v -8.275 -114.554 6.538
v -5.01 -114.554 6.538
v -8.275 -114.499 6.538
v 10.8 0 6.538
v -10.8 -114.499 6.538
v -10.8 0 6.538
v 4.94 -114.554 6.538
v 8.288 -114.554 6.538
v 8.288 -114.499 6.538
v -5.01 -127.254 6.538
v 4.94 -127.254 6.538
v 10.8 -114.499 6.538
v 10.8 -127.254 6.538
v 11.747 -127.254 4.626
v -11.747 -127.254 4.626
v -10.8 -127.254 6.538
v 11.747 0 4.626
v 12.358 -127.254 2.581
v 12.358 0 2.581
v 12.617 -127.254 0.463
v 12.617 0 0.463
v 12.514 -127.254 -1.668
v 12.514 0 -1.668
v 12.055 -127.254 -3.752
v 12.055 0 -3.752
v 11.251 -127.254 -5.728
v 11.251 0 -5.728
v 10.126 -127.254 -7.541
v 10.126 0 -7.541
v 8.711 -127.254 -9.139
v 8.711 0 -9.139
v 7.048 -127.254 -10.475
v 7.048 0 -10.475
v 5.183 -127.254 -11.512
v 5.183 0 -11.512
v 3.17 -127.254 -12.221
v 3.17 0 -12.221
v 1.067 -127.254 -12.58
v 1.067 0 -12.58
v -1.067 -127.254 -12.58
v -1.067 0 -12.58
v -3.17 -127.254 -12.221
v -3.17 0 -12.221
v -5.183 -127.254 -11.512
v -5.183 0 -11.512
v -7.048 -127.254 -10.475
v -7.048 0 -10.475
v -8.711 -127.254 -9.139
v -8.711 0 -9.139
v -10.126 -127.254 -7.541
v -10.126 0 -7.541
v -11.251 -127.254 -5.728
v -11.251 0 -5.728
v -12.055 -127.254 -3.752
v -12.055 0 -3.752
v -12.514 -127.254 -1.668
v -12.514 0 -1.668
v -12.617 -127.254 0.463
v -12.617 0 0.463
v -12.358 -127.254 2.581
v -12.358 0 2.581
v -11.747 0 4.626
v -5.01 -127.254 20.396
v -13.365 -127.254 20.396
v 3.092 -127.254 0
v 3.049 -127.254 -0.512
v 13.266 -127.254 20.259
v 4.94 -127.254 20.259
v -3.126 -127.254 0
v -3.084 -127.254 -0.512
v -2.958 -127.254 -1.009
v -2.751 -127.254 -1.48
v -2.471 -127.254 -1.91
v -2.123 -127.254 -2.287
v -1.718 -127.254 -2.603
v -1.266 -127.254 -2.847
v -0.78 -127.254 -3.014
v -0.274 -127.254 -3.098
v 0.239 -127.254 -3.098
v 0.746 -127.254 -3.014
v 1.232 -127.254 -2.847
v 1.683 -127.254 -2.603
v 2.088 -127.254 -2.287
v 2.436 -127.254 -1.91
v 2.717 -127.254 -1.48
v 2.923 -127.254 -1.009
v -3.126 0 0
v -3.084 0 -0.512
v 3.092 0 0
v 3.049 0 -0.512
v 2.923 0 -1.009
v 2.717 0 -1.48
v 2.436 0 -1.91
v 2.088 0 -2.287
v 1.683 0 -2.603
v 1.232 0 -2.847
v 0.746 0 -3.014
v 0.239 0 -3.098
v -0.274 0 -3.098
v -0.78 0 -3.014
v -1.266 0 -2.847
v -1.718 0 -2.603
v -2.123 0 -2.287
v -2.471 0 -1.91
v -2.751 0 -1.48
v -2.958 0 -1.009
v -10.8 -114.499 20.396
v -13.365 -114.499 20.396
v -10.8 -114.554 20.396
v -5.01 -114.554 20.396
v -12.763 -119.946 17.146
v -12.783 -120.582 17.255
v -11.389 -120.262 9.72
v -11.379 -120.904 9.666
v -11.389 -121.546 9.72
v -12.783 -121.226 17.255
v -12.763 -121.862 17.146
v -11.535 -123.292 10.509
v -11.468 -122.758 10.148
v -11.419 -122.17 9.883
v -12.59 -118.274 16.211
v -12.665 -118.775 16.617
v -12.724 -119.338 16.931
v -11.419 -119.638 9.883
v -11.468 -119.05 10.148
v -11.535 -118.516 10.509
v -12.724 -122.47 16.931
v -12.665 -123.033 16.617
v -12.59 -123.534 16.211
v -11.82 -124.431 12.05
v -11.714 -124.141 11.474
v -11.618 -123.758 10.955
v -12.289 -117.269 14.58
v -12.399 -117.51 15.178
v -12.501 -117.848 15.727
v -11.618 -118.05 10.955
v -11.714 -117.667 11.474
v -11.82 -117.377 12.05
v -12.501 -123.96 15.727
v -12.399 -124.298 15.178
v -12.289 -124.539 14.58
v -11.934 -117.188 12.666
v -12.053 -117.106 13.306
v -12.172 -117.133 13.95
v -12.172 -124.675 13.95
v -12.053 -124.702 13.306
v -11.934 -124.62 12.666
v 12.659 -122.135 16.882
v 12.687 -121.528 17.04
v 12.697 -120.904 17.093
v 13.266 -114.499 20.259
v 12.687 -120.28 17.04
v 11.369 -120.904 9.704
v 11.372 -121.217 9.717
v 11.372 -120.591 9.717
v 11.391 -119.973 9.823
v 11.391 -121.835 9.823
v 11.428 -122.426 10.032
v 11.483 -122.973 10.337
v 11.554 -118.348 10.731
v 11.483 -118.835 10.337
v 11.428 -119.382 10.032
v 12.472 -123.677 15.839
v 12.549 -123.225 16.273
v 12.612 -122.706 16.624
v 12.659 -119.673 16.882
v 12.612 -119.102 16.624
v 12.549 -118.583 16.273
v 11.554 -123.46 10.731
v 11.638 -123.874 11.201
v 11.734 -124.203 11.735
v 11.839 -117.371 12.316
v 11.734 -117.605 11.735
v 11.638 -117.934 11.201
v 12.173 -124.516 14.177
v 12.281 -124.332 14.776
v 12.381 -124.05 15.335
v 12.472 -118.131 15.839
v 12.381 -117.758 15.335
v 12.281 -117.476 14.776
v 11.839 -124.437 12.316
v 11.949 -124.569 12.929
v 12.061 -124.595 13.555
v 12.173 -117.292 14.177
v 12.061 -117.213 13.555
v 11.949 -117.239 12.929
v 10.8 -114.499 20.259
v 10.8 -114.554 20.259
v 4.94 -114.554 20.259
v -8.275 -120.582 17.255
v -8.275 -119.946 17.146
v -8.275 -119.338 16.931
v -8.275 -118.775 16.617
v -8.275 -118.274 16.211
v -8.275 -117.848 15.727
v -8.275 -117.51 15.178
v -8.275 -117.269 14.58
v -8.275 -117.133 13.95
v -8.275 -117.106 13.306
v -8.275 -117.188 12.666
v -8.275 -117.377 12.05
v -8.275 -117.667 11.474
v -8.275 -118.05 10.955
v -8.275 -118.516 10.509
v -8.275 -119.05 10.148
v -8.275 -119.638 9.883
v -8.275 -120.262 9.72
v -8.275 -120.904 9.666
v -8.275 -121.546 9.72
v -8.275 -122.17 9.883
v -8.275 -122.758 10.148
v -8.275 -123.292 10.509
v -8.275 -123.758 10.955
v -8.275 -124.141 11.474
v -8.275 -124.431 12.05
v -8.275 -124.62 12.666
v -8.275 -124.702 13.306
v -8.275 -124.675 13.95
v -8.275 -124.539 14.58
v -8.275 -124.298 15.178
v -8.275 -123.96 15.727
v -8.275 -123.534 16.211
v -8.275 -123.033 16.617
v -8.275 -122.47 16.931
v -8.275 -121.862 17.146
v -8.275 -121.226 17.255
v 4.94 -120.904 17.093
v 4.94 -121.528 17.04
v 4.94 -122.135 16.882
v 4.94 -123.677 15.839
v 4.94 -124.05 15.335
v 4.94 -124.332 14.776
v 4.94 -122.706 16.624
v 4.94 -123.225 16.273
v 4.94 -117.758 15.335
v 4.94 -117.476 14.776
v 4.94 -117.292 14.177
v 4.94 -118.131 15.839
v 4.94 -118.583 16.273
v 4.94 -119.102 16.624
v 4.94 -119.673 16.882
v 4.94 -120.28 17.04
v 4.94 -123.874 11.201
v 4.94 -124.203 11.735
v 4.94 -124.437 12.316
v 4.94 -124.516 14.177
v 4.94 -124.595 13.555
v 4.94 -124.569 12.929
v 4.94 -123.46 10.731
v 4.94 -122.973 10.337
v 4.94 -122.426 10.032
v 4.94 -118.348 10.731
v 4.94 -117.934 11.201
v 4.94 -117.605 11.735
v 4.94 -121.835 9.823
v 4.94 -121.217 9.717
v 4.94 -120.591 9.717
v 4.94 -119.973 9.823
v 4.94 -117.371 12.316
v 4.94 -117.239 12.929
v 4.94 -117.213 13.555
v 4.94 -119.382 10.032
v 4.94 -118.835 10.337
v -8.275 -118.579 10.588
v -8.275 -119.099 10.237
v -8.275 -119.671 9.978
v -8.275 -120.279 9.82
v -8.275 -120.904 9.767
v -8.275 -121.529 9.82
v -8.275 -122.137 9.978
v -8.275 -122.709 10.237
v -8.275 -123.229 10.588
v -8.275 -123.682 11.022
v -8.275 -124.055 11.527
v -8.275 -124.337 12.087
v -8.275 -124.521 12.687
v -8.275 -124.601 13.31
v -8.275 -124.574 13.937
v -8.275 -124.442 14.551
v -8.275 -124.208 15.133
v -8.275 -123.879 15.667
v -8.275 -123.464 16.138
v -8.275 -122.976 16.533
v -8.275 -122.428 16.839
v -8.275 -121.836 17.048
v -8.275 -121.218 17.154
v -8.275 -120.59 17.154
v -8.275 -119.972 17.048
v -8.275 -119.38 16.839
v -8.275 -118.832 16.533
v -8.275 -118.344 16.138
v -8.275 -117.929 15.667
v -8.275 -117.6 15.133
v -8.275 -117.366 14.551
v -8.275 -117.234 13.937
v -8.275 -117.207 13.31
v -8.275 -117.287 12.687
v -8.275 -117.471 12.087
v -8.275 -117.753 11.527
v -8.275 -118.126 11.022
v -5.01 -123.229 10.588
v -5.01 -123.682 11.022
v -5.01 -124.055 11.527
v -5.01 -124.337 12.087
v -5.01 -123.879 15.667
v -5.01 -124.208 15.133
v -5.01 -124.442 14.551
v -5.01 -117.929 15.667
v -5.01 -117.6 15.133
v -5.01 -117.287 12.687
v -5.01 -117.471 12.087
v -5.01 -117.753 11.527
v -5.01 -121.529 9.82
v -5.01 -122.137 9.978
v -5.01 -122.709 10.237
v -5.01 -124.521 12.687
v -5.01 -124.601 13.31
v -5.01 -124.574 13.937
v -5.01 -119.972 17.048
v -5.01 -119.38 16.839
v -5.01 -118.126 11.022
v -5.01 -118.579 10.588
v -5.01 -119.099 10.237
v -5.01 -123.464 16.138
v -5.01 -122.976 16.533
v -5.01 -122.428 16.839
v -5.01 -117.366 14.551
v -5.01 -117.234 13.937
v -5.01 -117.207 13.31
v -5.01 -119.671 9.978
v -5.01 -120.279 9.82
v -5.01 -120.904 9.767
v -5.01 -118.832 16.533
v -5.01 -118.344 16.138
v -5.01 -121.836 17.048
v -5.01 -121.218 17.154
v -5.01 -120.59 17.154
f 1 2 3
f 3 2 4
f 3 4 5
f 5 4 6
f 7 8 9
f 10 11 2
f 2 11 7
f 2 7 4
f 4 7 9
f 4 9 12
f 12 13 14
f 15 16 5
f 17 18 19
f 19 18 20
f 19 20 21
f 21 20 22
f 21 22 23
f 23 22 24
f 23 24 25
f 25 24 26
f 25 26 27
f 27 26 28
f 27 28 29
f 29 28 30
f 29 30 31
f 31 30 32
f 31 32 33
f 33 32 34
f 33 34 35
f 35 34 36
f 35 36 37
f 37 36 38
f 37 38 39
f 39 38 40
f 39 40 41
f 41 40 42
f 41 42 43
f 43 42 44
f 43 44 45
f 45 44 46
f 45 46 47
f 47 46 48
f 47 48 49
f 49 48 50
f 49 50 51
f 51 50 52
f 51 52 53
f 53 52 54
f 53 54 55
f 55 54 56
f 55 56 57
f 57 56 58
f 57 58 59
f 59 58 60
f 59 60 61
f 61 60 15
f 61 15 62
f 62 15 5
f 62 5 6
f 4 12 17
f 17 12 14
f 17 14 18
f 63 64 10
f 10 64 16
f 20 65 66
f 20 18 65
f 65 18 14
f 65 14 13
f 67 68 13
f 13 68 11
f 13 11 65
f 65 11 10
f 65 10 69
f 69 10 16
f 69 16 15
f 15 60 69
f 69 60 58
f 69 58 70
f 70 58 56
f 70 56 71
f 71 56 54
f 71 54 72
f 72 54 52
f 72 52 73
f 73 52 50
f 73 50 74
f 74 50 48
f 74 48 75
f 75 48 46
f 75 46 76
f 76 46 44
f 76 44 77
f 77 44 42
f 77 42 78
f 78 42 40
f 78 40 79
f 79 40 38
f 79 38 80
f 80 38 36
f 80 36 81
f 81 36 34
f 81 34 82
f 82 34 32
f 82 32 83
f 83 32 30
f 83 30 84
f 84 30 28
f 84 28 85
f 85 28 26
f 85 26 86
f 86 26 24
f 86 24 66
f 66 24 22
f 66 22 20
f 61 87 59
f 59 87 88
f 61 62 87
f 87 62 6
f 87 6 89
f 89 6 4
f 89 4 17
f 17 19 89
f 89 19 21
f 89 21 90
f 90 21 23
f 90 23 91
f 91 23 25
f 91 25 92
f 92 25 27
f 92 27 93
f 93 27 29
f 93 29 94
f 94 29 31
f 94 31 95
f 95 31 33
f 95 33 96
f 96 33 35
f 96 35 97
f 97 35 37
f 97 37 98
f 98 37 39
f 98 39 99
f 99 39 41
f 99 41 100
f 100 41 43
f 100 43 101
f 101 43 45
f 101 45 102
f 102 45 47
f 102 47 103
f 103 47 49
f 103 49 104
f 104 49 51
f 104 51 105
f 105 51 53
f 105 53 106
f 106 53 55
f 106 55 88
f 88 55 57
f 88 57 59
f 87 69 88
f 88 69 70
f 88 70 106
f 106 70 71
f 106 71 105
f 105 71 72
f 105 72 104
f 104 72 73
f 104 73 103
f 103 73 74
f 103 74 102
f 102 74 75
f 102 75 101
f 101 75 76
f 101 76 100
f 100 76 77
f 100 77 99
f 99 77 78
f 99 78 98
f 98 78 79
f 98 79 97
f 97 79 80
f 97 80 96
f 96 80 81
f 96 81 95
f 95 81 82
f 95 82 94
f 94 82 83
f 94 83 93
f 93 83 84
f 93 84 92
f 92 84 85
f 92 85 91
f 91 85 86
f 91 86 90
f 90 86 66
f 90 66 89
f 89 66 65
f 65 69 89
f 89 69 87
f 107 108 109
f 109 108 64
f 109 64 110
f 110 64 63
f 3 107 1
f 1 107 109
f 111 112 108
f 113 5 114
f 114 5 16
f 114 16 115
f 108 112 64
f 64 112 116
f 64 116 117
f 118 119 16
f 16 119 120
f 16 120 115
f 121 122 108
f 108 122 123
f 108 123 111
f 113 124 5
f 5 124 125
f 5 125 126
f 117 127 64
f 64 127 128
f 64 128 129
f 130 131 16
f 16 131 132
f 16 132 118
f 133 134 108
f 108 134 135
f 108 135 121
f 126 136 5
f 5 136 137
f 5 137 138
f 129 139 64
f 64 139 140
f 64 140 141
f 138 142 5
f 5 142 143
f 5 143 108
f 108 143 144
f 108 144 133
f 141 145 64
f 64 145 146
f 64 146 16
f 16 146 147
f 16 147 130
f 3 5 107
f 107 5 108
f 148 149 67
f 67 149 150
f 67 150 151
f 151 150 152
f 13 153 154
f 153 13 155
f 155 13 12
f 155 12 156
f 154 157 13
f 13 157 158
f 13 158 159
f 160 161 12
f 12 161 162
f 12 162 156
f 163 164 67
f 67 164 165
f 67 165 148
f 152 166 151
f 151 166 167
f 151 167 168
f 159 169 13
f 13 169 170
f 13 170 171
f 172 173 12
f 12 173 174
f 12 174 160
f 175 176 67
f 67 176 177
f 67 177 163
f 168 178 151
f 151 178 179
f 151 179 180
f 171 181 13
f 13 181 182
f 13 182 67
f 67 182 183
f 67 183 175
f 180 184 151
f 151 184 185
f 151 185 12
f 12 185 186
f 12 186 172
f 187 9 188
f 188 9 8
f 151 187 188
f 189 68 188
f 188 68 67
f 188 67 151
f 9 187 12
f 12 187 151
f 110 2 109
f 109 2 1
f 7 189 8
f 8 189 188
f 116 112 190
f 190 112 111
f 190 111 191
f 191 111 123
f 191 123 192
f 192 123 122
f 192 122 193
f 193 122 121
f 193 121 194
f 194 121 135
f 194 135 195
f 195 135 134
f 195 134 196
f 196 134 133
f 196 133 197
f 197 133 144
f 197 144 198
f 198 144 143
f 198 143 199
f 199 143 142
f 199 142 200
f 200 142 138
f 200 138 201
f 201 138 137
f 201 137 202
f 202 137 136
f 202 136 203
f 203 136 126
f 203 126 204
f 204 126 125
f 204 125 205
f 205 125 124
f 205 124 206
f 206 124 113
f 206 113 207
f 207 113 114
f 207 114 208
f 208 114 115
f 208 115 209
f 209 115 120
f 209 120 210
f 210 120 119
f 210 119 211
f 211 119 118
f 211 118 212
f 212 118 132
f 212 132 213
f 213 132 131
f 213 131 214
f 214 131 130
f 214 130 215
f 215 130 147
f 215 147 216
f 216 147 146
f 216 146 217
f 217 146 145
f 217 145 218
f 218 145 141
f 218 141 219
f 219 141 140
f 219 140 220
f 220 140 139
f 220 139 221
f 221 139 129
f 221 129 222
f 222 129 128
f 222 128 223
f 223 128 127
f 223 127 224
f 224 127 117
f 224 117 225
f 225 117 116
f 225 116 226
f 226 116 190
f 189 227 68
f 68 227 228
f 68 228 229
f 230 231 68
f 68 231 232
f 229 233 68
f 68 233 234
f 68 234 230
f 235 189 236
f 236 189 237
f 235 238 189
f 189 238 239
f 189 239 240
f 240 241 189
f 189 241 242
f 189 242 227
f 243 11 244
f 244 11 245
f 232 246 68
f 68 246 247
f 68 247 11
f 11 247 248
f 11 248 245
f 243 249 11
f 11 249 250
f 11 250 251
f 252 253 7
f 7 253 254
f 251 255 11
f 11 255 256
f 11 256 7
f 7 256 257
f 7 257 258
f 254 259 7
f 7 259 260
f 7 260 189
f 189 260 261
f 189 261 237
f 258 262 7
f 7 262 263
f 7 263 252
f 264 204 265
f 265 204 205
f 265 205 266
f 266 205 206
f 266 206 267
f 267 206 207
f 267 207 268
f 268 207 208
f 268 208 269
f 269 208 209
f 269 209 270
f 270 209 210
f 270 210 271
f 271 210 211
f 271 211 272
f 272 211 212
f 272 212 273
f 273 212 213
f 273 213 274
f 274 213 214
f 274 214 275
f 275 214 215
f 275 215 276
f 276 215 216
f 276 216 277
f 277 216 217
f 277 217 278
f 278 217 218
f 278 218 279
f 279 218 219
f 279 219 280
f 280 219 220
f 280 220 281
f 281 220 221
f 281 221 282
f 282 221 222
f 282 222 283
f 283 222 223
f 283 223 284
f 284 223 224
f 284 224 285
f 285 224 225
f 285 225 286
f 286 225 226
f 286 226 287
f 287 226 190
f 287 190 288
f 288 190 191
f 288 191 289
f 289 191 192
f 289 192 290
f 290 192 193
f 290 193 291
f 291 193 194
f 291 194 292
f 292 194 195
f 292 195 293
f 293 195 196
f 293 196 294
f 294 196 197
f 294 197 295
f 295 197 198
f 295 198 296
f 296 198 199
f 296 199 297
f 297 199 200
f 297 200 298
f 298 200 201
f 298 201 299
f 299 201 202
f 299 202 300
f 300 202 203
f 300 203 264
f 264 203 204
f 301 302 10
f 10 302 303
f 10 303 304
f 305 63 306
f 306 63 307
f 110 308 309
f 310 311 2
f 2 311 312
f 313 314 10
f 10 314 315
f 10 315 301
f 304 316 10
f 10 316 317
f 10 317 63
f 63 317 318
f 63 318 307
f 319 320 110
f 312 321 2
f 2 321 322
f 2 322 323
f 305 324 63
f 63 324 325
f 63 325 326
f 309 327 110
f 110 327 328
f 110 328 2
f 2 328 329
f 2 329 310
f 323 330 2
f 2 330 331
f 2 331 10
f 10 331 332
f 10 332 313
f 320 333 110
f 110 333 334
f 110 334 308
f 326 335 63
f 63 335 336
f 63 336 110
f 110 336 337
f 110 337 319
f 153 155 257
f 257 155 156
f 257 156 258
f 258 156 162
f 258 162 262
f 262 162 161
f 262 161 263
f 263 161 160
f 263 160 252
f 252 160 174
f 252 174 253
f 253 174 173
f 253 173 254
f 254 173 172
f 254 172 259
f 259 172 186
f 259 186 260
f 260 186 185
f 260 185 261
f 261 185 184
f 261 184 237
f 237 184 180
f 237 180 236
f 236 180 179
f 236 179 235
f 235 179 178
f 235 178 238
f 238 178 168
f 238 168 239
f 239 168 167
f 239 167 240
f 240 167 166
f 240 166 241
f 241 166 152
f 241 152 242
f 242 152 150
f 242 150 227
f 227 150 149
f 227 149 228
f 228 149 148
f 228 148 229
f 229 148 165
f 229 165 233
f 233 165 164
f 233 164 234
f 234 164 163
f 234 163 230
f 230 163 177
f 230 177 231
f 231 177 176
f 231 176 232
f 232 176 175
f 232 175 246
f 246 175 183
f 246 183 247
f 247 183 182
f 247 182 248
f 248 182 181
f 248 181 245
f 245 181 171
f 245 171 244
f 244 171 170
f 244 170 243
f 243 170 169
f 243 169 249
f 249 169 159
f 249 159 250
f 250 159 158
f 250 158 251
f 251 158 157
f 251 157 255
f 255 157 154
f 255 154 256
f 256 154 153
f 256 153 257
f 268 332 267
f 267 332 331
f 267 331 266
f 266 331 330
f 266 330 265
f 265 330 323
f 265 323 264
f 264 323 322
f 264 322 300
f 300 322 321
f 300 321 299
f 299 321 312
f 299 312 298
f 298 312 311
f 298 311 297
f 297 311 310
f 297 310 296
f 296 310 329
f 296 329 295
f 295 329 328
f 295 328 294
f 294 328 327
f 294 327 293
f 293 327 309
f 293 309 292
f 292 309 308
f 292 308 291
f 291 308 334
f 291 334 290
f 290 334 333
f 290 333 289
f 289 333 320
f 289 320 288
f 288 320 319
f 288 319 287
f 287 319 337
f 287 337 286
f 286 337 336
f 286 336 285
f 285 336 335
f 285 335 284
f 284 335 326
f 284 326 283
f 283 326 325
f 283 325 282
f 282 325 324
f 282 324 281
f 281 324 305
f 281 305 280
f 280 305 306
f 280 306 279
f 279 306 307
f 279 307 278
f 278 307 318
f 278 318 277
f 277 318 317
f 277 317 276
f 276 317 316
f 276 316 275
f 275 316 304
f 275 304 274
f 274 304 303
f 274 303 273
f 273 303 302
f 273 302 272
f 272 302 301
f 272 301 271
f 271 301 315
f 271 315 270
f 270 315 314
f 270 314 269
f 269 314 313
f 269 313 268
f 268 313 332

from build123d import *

# Parameters (mm, degrees)
SKETCH1_R           = 12.62515314
BOSS_EXTRUDE1_DEPTH = 127.254
SKETCH2_W           = 21.600890372
SKETCH2_H           = 6.08719661
CUT_EXTRUDE1_DEPTH  = 155.702
CUT_EXTRUDE2_DEPTH  = 141.081655767
BOSS_EXTRUDE2_DEPTH = 12.755190121
BOSS_EXTRUDE3_DEPTH = 12.755190121
BOSS_EXTRUDE4_DEPTH = 12.7
BOSS_EXTRUDE5_DEPTH = 12.7
SKETCH11_R          = 3.688999931
CUT_EXTRUDE3_DEPTH  = 13.97
SKETCH12_R          = 3.801462188
CUT_EXTRUDE4_DEPTH  = 11.43
SKETCH13_W          = 3.347443601
SKETCH13_H          = 13.720552831
BOSS_EXTRUDE6_DEPTH = 12.7
SKETCH14_W          = 3.264831583
SKETCH14_H          = 12.7
BOSS_EXTRUDE7_DEPTH = 13.97
SKETCH16_R          = 3.69446956
CUT_EXTRUDE6_DEPTH  = 45.212
SKETCH17_R          = 3.700235887
CUT_EXTRUDE7_DEPTH  = 28.702


with BuildPart() as part:
    # Sketch1 → Boss-Extrude1 (new body)
    with BuildSketch(Plane(origin=(0, 0, 0), x_dir=(1, 0, 0), z_dir=(0, 1, 0))):
        with Locations(Location((0, 0, 0), (0, 0, 270))):
            Circle(SKETCH1_R)
    extrude(amount=-BOSS_EXTRUDE1_DEPTH)

    # Sketch2 → Cut-Extrude1 (cut)
    with BuildSketch(Plane(origin=(0, -127.254, 0), x_dir=(-1, 0, 0), z_dir=(0, -1, 0))):
        with Locations((0, -9.581554835)):
            Rectangle(SKETCH2_W, SKETCH2_H)
    extrude(amount=-CUT_EXTRUDE1_DEPTH, mode=Mode.SUBTRACT)

    # Sketch3 → Cut-Extrude2 (cut)
    with BuildSketch(Plane(origin=(0, -127.254, 0), x_dir=(-1, 0, 0), z_dir=(0, -1, 0))):
        with BuildLine():
            Line((3.126169088, 0), (-3.091625783, 0))
            ThreePointArc((-3.091625783, 0), (0.017271652, 3.108897435), (3.126169088, 0))
        make_face()
    extrude(amount=-CUT_EXTRUDE2_DEPTH, mode=Mode.SUBTRACT)

    # Sketch4 → Boss-Extrude2 (add)
    with BuildSketch(Plane.XZ.offset(127.254)):
        Polygon((-10.800445186, 6.53795653), (-8.274777075, 6.53795653), (-10.800445186, 20.396051451), (-13.364649969, 20.396051451), align=None)
    extrude(amount=-BOSS_EXTRUDE2_DEPTH)

    # Sketch5 → Boss-Extrude3 (add)
    with BuildSketch(Plane.XZ.offset(127.254)):
        Polygon((10.800445186, 6.53795653), (8.287884941, 6.53795653), (10.800445186, 20.258509361), (13.265579683, 20.258509361), align=None)
    extrude(amount=-BOSS_EXTRUDE3_DEPTH)

    # Sketch9 → Boss-Extrude4 (add)
    with BuildSketch(Plane(origin=(0, -127.254, 0), x_dir=(-1, 0, 0), z_dir=(0, -1, 0))):
        Polygon((10.800445186, -20.396051451), (8.274777075, -20.396051451), (8.274777075, -6.53795653), align=None)
    extrude(amount=-BOSS_EXTRUDE4_DEPTH)

    # Sketch10 → Boss-Extrude5 (add)
    with BuildSketch(Plane(origin=(0, -127.254, 0), x_dir=(-1, 0, 0), z_dir=(0, -1, 0))):
        Polygon((-8.287884941, -6.53795653), (-8.287884941, -20.258509361), (-10.800445186, -20.258509361), align=None)
    extrude(amount=-BOSS_EXTRUDE5_DEPTH)

    # Sketch11 → Cut-Extrude3 (cut)
    with BuildSketch(Plane.ZY.offset(-8.287884941)):
        with Locations((13.398232945, -120.904)):
            Circle(SKETCH11_R)
    extrude(amount=-CUT_EXTRUDE3_DEPTH, mode=Mode.SUBTRACT)

    # Sketch12 → Cut-Extrude4 (cut)
    with BuildSketch(Plane(origin=(-8.274777075, 0, 0), x_dir=(0, 0, -1), z_dir=(1, 0, 0))):
        with Locations((-13.46700399, -120.904)):
            Circle(SKETCH12_R)
    extrude(amount=-CUT_EXTRUDE4_DEPTH, mode=Mode.SUBTRACT)

    # Sketch13 → Boss-Extrude6 (add)
    with BuildSketch(Plane.XZ.offset(127.254)):
        with Locations((6.614163141, 13.398232946)):
            Rectangle(SKETCH13_W, SKETCH13_H)
    extrude(amount=-BOSS_EXTRUDE6_DEPTH)

    # Sketch14 → Boss-Extrude7 (add)
    with BuildSketch(Plane.XY.offset(20.396051451)):
        with Locations((-6.642361284, -120.904)):
            Rectangle(SKETCH14_W, SKETCH14_H)
    extrude(amount=-BOSS_EXTRUDE7_DEPTH)

    # Sketch16 → Cut-Extrude6 (cut)
    with BuildSketch(Plane.ZY.offset(-4.94044134)):
        with Locations((13.398232945, -120.904)):
            Circle(SKETCH16_R)
    extrude(amount=-CUT_EXTRUDE6_DEPTH, mode=Mode.SUBTRACT)

    # Sketch17 → Cut-Extrude7 (cut)
    with BuildSketch(Plane(origin=(-5.009945492, 0, 0), x_dir=(0, 0, -1), z_dir=(1, 0, 0))):
        with Locations((-13.46700399, -120.904)):
            Circle(SKETCH17_R)
    extrude(amount=-CUT_EXTRUDE7_DEPTH, mode=Mode.SUBTRACT)


solid = part.part
